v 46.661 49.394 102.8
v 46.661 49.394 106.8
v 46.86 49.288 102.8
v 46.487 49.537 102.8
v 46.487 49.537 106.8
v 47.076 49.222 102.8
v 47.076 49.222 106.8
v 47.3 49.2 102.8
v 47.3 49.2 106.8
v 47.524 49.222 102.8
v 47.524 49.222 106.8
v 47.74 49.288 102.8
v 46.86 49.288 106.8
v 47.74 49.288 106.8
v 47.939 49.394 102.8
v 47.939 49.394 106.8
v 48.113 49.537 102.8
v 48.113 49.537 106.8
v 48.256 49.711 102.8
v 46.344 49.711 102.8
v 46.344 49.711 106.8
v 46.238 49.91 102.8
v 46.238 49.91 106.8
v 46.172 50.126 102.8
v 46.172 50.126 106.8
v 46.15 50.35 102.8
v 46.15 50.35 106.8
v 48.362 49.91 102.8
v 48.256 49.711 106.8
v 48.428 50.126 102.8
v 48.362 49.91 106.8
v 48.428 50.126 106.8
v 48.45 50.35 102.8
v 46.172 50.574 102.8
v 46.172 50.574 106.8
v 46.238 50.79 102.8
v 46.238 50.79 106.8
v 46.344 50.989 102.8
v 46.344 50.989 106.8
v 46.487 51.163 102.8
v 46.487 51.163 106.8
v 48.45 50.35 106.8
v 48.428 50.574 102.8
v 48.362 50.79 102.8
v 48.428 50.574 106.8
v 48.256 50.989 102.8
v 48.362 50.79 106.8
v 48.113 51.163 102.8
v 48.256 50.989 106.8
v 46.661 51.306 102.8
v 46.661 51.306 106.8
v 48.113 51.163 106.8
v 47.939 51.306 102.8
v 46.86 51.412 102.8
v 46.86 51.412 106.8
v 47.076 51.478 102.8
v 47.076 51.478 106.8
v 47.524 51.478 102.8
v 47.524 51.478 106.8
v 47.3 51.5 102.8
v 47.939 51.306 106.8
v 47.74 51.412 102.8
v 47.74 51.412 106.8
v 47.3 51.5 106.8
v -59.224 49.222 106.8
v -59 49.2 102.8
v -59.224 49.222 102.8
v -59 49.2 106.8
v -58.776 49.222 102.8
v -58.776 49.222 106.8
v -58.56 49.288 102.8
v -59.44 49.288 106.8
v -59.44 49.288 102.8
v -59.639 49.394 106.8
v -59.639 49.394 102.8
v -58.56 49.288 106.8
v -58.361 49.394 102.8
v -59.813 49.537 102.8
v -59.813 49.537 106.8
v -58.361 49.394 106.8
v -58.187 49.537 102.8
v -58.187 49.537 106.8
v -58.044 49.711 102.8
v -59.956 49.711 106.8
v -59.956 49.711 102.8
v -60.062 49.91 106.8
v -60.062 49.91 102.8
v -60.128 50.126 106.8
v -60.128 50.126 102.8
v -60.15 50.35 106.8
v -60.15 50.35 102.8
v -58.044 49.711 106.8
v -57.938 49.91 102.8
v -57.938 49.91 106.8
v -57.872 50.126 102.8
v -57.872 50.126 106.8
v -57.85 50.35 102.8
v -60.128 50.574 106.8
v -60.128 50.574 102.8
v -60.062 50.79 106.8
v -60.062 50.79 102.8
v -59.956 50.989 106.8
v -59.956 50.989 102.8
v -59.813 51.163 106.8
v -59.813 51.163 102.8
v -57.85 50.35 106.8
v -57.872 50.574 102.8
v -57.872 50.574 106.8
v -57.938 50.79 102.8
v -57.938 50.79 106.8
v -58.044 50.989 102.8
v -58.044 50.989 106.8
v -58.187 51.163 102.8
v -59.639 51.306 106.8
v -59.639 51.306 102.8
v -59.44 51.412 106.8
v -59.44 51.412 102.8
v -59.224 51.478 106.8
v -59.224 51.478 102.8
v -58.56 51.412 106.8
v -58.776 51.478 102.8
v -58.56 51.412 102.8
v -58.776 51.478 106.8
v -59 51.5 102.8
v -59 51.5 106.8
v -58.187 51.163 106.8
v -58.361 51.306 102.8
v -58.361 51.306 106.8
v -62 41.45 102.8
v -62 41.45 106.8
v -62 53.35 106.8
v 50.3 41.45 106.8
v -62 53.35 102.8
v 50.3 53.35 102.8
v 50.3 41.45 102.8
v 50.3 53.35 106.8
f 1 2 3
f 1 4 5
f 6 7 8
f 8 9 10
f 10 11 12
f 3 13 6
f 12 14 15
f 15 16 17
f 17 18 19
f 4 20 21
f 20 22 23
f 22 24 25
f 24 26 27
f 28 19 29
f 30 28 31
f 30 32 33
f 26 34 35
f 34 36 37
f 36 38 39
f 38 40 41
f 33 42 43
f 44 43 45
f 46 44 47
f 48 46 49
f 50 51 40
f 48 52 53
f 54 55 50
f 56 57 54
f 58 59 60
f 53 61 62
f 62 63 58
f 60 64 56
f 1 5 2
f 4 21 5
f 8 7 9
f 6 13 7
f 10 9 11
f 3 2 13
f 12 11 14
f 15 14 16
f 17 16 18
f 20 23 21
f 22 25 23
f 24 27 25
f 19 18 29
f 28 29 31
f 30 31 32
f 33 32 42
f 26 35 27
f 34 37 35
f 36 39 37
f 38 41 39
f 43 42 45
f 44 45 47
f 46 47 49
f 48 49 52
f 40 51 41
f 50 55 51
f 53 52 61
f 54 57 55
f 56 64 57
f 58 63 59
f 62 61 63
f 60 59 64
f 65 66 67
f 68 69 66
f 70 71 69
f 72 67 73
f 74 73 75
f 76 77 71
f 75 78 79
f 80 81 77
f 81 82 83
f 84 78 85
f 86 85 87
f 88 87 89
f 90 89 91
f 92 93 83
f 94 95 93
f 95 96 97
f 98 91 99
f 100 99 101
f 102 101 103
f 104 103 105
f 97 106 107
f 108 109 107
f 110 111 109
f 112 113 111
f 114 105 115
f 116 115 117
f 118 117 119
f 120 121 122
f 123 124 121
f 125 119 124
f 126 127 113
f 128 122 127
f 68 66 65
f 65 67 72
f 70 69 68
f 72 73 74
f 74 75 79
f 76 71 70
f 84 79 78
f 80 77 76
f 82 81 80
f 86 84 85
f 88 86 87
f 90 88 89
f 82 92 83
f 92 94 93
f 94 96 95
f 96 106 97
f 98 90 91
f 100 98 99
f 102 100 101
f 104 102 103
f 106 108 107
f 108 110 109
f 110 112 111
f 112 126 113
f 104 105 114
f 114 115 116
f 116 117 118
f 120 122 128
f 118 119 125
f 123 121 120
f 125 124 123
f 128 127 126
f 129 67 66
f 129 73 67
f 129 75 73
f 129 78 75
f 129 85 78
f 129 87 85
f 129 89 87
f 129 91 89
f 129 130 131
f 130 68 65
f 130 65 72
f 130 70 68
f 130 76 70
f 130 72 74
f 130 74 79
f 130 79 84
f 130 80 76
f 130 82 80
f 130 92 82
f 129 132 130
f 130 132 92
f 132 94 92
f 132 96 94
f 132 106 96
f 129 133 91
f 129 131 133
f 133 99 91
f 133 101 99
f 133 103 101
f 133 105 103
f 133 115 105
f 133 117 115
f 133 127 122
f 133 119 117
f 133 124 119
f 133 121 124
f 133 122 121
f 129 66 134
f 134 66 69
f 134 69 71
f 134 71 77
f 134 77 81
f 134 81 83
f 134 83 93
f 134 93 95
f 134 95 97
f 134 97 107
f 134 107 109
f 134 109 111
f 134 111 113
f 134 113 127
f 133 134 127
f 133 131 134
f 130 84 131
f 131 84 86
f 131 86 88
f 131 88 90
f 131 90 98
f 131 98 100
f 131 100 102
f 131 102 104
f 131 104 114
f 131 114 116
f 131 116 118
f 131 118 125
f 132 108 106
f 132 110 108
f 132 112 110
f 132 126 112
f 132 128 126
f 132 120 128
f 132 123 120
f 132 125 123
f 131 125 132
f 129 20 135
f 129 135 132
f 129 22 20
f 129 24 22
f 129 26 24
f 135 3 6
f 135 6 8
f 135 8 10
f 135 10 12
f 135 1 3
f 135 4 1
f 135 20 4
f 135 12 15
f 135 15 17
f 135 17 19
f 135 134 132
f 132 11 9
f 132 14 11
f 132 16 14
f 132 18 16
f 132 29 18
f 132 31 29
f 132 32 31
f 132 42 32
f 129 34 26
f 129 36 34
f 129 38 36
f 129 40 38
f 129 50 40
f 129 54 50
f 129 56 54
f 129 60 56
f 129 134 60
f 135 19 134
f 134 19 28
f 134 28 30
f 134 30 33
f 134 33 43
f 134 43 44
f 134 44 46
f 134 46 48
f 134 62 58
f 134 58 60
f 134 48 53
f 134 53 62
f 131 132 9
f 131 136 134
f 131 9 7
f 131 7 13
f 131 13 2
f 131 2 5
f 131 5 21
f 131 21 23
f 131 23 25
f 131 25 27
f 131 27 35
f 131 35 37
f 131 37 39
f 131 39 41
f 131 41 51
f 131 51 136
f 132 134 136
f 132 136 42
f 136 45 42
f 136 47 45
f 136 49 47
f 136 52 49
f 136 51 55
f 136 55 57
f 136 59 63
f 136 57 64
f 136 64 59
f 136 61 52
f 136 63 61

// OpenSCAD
// =============================================================================
// JETSON CLAMP BAR — one side's case hold-down (consolidates 2 corner clamps)
// =============================================================================
// #44: the 4 separate `jetson_clamp` corner pieces → 2 of THESE bars (one per
// ±Y side). Each bar spans the side's 2 uprights, bolts to both upright tops
// (2× M2), and its underside caps the case's 2 SOLID CORNER COLUMNS (z102.8) —
// the case-top mid-side is ≤102.5 (measured) so a FLAT bar clears it (no arch).
// Fewer loose parts at assembly; same drop-in-then-bolt scheme.
// Bear-only (NO case drilling); add a TPU/EVA shim on the bearing pads.
// World/trunk frame (matches jetson_case_mount — keep consts in sync).
// PRINT: PA6-CF, flat, ~4 g. print 2 (both sides identical — mirror-symmetric
//   in y about the corners, so ONE part serves +y AND -y).

$fn = 32; EPS = 0.05; M2_CLEAR = 2.3;

FRONT_PXC = 47.3; REAR_PXC = -59.0;   // upright x centres (this side)
POST_YC = 50.35;                       // upright y centre (bolt)
HY = 41.45;                            // corner-column y (bearing) — |y| for +y side
CORNER_Z = 102.8; BAR_T = 4;

module jetson_clamp_bar() {
    difference() {
        // flat bar: x across both uprights, y from the corner column out to the
        // upright bolt. Inner edge at the column (HY) so it never rides inboard
        // onto the rising faceted top.
        translate([REAR_PXC - 3, HY, CORNER_Z])
            cube([FRONT_PXC - REAR_PXC + 6, POST_YC + 3 - HY, BAR_T]);
        // 2x M2 clearance at the upright tops
        for (px = [FRONT_PXC, REAR_PXC])
            translate([px, POST_YC, CORNER_Z - EPS])
                cylinder(d = M2_CLEAR, h = BAR_T + 2 * EPS);
    }
}

jetson_clamp_bar();
